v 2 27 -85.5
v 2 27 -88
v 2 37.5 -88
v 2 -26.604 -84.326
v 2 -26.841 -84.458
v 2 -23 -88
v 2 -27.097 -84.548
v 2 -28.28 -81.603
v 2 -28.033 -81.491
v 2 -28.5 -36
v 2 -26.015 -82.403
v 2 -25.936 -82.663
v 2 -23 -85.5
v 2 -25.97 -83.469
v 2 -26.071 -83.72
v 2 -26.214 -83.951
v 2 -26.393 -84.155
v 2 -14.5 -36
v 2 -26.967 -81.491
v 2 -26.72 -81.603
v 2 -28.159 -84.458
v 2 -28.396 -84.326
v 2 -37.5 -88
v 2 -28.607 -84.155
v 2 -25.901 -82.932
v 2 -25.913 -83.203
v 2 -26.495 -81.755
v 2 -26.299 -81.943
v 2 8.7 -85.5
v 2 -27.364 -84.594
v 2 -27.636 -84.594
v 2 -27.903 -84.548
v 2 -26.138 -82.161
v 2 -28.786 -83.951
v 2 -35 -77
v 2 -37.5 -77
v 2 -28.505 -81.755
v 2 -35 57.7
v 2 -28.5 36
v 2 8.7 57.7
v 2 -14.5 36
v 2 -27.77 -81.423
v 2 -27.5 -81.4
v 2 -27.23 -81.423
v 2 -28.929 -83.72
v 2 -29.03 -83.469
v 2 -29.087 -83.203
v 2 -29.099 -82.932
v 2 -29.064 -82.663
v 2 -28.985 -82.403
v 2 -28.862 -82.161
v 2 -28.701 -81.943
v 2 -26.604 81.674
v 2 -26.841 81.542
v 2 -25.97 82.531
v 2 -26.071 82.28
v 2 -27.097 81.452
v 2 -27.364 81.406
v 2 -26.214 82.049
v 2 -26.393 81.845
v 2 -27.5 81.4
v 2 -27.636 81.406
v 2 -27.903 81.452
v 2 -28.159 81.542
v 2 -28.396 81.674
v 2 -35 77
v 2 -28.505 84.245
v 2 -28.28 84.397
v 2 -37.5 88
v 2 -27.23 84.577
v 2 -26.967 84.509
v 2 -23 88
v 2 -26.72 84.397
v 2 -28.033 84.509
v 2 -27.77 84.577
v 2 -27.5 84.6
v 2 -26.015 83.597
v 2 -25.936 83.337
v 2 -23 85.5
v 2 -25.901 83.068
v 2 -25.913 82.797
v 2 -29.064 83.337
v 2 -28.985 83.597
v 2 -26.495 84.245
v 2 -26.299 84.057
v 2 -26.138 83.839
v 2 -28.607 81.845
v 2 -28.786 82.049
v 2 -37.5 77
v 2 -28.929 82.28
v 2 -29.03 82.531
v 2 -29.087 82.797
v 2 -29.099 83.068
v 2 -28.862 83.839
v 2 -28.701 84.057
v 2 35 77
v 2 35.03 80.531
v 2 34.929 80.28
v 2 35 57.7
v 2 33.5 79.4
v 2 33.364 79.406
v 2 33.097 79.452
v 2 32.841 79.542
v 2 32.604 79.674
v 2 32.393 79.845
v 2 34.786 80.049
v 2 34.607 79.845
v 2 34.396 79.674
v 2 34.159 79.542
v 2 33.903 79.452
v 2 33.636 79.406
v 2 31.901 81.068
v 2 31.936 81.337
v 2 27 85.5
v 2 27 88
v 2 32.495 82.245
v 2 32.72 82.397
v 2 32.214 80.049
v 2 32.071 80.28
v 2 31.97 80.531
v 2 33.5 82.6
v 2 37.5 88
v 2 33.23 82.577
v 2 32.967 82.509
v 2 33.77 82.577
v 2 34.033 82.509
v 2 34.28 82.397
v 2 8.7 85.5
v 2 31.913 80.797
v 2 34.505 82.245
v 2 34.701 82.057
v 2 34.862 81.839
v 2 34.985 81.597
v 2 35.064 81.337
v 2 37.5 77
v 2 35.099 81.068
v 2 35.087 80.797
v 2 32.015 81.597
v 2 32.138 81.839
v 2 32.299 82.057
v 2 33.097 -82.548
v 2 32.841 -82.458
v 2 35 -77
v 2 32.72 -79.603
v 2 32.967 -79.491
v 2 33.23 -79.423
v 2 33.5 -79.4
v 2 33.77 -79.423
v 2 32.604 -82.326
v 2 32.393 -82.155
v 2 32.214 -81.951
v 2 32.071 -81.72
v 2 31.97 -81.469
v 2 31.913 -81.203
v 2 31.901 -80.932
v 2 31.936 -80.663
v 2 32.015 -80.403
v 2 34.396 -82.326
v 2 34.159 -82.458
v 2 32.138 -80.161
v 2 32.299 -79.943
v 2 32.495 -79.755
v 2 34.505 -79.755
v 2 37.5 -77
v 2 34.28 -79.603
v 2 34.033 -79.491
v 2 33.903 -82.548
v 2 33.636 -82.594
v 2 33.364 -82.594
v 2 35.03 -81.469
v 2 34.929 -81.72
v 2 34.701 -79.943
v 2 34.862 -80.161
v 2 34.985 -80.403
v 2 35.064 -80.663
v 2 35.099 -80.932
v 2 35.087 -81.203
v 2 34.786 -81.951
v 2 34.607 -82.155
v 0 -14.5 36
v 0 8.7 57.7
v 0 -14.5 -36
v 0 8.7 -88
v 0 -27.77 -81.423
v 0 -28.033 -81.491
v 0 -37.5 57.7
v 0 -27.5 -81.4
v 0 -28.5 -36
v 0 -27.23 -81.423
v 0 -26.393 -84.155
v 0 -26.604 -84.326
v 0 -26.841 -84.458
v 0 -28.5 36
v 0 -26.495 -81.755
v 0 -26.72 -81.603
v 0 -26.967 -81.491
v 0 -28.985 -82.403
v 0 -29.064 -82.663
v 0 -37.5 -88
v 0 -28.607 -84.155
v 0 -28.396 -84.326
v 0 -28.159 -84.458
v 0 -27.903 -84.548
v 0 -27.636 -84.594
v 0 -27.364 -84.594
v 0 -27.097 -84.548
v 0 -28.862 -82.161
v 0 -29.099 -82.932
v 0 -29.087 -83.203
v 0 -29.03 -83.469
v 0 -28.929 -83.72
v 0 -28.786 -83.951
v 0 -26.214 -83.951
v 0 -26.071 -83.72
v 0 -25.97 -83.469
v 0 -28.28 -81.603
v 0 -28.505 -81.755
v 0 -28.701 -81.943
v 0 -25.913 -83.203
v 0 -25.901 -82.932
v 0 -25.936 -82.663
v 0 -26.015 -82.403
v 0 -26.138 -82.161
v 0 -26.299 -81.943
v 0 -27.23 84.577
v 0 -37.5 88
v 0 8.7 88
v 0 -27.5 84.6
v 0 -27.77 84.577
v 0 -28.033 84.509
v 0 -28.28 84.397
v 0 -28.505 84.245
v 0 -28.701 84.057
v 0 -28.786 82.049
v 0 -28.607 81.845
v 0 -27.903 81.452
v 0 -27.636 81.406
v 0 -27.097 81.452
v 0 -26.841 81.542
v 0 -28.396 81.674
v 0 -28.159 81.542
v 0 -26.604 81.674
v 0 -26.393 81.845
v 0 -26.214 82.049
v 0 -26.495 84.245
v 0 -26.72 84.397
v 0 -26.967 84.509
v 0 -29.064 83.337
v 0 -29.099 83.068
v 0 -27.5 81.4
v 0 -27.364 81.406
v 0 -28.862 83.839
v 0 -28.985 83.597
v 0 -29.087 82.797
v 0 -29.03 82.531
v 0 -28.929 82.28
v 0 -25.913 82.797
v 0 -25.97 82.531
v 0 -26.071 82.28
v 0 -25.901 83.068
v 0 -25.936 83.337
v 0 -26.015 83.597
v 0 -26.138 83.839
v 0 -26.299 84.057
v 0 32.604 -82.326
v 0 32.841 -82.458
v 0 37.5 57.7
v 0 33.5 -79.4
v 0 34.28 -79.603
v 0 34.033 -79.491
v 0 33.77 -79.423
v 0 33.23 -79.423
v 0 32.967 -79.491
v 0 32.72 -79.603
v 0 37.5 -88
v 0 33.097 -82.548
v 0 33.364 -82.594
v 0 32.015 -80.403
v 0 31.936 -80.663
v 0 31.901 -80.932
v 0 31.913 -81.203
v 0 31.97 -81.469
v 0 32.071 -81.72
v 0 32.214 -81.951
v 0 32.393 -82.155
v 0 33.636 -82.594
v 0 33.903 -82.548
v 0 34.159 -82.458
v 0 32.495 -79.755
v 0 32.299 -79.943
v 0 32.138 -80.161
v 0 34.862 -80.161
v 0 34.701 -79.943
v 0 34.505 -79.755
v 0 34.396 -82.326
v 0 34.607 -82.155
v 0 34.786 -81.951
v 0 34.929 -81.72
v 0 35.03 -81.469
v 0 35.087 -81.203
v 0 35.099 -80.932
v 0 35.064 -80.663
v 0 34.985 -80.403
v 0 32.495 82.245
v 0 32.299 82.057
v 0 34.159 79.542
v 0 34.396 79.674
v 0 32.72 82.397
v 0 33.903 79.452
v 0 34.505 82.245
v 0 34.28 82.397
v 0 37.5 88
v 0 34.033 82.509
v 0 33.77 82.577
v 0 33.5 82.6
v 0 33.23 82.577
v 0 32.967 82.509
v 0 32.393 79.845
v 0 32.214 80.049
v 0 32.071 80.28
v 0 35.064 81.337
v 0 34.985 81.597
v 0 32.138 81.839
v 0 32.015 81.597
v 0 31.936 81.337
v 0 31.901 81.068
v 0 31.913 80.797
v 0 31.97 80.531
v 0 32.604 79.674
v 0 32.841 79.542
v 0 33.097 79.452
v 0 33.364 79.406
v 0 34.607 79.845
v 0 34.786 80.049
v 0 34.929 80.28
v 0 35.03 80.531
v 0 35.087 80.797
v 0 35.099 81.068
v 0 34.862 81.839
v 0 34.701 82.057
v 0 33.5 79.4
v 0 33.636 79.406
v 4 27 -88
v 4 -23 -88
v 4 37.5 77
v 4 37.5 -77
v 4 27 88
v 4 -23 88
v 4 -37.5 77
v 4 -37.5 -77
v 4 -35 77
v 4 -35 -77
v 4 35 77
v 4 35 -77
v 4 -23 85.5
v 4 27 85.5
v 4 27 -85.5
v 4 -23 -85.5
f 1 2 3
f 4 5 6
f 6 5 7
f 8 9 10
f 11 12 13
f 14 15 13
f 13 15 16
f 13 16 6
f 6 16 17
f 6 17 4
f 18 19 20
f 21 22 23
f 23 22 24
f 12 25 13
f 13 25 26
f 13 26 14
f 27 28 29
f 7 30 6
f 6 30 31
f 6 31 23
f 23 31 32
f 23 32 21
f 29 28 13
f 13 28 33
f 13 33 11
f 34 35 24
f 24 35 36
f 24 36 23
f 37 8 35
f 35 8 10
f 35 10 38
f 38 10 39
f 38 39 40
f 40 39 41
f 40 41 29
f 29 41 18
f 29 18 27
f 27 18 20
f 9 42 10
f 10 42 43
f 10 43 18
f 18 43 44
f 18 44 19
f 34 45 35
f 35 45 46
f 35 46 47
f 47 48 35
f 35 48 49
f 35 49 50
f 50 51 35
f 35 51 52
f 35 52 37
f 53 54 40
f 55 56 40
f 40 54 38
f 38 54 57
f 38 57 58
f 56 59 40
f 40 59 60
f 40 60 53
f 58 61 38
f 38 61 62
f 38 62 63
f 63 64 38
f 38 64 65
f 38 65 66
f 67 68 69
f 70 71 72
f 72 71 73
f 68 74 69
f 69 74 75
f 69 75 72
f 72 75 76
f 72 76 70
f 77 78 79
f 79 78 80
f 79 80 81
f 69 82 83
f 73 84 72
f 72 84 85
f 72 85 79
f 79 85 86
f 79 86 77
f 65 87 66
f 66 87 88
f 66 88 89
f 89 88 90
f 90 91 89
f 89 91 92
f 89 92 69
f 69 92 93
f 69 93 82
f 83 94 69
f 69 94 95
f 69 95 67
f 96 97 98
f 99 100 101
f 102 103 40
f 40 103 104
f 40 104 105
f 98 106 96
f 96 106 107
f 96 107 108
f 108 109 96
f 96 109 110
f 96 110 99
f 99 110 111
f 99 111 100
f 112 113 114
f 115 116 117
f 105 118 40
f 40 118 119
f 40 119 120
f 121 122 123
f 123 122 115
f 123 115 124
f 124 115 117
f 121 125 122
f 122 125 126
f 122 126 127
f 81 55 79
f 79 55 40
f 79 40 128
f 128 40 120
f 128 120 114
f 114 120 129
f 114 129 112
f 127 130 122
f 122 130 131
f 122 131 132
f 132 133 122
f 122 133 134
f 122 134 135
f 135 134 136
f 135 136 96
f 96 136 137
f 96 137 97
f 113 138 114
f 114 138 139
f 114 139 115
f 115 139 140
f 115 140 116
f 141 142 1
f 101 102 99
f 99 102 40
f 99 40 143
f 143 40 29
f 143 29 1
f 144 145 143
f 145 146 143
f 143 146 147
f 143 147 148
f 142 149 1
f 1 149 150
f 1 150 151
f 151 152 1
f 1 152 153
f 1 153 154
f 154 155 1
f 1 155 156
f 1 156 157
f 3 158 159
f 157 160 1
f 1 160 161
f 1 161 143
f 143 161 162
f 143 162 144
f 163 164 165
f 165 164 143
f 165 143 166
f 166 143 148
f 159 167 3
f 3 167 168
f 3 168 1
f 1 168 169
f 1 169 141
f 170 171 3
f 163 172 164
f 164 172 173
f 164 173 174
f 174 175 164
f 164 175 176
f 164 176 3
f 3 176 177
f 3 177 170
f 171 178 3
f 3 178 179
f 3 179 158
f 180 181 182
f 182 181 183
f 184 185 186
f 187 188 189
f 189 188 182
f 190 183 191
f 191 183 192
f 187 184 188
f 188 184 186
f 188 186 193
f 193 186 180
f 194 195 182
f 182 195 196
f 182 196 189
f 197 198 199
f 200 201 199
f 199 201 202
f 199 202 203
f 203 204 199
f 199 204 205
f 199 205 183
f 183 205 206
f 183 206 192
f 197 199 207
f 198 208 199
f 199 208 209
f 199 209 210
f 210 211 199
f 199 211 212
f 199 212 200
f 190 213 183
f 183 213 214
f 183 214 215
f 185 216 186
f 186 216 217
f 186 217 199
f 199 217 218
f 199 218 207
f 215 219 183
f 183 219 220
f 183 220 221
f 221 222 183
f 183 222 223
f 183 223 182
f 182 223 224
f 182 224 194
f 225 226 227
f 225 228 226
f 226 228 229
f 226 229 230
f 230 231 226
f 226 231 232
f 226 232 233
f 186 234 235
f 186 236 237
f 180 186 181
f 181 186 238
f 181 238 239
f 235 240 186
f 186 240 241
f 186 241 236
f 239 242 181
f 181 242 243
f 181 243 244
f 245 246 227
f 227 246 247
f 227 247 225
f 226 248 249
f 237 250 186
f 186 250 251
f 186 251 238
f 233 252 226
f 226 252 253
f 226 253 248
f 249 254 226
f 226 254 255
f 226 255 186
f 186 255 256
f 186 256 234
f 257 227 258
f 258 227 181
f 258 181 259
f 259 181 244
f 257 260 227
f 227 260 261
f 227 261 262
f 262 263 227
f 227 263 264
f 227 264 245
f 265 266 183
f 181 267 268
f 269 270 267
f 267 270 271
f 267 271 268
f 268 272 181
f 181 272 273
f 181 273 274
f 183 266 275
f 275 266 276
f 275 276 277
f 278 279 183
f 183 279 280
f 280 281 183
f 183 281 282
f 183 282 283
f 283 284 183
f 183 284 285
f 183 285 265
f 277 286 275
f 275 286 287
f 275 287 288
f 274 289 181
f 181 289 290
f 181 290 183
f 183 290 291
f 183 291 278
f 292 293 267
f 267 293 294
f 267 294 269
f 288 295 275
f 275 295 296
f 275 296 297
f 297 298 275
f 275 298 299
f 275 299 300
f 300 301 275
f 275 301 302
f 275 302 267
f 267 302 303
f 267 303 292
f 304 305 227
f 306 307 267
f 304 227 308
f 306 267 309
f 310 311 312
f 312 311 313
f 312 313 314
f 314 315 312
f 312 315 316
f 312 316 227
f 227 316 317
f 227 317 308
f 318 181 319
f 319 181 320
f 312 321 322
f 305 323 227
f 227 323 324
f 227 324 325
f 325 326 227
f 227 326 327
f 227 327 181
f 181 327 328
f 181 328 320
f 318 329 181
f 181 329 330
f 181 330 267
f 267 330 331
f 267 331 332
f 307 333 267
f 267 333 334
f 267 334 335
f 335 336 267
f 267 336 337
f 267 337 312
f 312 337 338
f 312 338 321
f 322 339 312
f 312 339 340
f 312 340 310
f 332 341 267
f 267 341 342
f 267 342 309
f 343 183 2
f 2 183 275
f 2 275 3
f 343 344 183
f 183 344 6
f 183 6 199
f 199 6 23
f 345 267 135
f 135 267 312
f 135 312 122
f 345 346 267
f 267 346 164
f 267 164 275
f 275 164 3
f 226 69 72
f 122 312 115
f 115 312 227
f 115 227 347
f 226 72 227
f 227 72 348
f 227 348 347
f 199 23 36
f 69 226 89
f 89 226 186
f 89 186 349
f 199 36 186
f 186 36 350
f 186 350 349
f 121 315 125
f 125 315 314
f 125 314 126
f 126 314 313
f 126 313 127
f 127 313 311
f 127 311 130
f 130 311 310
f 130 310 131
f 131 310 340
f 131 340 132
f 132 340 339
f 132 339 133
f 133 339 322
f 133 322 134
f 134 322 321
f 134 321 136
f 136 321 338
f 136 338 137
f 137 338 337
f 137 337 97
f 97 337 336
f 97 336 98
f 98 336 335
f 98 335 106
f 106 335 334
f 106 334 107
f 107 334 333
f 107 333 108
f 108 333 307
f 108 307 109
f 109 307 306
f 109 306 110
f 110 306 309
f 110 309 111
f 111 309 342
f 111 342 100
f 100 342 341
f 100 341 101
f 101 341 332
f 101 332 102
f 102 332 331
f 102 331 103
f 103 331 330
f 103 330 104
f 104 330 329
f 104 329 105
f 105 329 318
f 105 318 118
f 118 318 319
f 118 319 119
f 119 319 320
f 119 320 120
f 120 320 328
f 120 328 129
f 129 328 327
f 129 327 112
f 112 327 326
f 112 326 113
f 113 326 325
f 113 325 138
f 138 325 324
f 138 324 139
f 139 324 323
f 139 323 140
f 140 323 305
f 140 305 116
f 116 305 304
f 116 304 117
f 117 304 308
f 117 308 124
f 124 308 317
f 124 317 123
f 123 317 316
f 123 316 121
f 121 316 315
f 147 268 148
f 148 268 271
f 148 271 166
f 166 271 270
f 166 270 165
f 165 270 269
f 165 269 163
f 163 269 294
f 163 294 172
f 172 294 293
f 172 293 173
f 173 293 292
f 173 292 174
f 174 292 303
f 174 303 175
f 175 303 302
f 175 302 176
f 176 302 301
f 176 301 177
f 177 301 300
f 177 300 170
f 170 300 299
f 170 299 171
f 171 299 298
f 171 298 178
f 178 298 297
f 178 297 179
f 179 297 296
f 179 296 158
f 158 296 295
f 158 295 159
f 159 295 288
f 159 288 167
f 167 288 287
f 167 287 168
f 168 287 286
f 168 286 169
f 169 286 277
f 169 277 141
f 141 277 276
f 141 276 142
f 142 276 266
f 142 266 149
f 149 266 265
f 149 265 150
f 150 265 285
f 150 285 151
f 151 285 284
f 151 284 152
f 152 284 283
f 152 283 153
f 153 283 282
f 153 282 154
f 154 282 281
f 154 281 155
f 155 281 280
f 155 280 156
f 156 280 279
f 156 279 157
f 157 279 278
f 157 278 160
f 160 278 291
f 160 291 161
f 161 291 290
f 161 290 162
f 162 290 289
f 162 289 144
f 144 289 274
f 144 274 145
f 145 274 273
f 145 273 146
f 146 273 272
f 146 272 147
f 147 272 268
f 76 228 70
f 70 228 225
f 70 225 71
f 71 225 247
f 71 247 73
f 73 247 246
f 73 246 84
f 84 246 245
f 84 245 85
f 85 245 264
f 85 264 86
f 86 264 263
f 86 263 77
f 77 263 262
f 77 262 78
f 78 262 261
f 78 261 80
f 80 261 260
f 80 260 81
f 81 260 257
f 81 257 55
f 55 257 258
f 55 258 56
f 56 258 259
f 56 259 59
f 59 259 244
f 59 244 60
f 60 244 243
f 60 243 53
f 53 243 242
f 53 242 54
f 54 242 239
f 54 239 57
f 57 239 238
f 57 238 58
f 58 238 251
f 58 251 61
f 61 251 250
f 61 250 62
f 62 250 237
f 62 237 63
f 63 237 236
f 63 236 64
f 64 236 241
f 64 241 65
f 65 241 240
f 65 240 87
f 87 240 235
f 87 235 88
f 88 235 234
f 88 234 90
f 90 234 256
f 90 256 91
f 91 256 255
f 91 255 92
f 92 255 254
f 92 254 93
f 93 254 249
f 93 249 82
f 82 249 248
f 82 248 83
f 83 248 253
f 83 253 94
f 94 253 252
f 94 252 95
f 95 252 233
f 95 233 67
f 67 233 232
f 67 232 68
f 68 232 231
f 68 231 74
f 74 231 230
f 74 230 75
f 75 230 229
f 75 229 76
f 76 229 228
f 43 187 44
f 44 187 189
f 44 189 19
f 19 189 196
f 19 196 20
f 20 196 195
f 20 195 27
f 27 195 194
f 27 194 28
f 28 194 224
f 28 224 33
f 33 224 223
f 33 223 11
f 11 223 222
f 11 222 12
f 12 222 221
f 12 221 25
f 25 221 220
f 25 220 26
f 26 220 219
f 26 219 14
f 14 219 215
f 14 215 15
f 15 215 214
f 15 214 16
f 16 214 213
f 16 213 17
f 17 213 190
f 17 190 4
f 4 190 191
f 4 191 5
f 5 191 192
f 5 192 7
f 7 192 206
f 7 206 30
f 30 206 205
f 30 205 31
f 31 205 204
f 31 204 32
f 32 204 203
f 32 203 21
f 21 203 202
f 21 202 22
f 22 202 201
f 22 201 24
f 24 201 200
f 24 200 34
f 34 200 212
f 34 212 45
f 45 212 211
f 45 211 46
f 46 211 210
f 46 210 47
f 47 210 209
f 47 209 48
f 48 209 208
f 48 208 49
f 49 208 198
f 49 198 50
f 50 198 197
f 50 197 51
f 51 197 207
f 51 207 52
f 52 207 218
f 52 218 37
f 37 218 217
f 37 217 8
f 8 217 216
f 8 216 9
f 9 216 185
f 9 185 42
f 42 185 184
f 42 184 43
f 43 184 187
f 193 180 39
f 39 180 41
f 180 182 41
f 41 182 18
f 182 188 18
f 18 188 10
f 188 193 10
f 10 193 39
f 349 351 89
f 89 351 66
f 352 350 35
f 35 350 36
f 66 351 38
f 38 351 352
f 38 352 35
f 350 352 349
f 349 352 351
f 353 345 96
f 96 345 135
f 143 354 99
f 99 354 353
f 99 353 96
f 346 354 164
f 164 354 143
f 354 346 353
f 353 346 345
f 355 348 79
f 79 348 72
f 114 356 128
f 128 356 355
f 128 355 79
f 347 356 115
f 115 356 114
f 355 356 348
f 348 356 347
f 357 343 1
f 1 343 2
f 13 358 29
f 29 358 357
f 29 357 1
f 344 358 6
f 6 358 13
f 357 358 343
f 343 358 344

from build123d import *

# Parameters (mm, degrees)
SKETCH1_W           = 176
SKETCH1_H           = 75
SKETCH1_R           = 1.6
BOSS_EXTRUDE1_DEPTH = 2
SKETCH2_W           = 72
SKETCH2_H           = 14
CUT_EXTRUDE1_DEPTH  = 2
SKETCH3_W           = 154
SKETCH3_H           = 2.5
BOSS_EXTRUDE2_DEPTH = 2
SKETCH4_W           = 2.5
SKETCH4_H           = 50
BOSS_EXTRUDE3_DEPTH = 2


with BuildPart() as part:
    # Sketch1 → Boss-Extrude1 (new body)
    with BuildSketch(Plane(origin=(0, 0, 0), x_dir=(0, 0, -1), z_dir=(1, 0, 0))):
        Rectangle(SKETCH1_W, SKETCH1_H)
        with Locations((-81, 33.5)):
            Circle(SKETCH1_R, mode=Mode.SUBTRACT)
        with Locations((81, 33.5)):
            Circle(SKETCH1_R, mode=Mode.SUBTRACT)
        with Locations((-83, -27.5)):
            Circle(SKETCH1_R, mode=Mode.SUBTRACT)
        with Locations((83, -27.5)):
            Circle(SKETCH1_R, mode=Mode.SUBTRACT)
    extrude(amount=BOSS_EXTRUDE1_DEPTH)

    # Sketch2 → Cut-Extrude1 (cut)
    with BuildSketch(Plane(origin=(2, 0, 0), x_dir=(0, 0, -1), z_dir=(1, 0, 0))):
        with Locations((0, -21.5)):
            Rectangle(SKETCH2_W, SKETCH2_H)
    extrude(amount=-CUT_EXTRUDE1_DEPTH, mode=Mode.SUBTRACT)

    # Sketch3 → Boss-Extrude2 (add)
    with BuildSketch(Plane(origin=(2, 0, 0), x_dir=(0, 0, -1), z_dir=(1, 0, 0))):
        with Locations((0, -36.25)):
            Rectangle(SKETCH3_W, SKETCH3_H)
        with Locations((0, 36.25)):
            Rectangle(SKETCH3_W, SKETCH3_H)
    extrude(amount=BOSS_EXTRUDE2_DEPTH)

    # Sketch4 → Boss-Extrude3 (add)
    with BuildSketch(Plane(origin=(2, 0, 0), x_dir=(0, 0, -1), z_dir=(1, 0, 0))):
        with Locations((-86.75, 2)):
            Rectangle(SKETCH4_W, SKETCH4_H)
        with Locations((86.75, 2)):
            Rectangle(SKETCH4_W, SKETCH4_H)
    extrude(amount=BOSS_EXTRUDE3_DEPTH)


solid = part.part
